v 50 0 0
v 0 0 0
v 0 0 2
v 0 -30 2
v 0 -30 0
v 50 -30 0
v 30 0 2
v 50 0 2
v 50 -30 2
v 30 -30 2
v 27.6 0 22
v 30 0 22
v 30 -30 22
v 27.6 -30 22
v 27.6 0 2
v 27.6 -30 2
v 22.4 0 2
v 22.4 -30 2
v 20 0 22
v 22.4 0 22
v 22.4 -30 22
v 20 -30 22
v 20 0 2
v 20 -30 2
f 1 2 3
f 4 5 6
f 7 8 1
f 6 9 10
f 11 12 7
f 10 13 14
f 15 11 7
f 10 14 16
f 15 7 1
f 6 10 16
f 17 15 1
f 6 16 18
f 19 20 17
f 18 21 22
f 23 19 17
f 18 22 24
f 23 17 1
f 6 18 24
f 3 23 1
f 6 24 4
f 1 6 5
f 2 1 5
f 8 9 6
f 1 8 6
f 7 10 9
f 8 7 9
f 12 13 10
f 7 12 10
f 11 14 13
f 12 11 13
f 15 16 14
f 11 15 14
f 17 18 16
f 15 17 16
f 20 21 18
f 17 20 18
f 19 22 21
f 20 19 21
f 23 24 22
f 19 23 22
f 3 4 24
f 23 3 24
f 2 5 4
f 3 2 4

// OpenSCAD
// holds 3-5 mm cardboard; 2 per panel, prints standing on its 50 mm base (generated by tools/demo_course_parts.py)
rotate([90,0,0]) linear_extrude(30.0) polygon([[0, 0], [50.0, 0], [50.0, 2.0], [29.999999999999996, 2.0], [29.999999999999996, 22.0], [27.599999999999998, 22.0], [27.599999999999998, 2.0], [22.4, 2.0], [22.4, 22.0], [20.0, 22.0], [20.0, 2.0], [0, 2.0]]);
